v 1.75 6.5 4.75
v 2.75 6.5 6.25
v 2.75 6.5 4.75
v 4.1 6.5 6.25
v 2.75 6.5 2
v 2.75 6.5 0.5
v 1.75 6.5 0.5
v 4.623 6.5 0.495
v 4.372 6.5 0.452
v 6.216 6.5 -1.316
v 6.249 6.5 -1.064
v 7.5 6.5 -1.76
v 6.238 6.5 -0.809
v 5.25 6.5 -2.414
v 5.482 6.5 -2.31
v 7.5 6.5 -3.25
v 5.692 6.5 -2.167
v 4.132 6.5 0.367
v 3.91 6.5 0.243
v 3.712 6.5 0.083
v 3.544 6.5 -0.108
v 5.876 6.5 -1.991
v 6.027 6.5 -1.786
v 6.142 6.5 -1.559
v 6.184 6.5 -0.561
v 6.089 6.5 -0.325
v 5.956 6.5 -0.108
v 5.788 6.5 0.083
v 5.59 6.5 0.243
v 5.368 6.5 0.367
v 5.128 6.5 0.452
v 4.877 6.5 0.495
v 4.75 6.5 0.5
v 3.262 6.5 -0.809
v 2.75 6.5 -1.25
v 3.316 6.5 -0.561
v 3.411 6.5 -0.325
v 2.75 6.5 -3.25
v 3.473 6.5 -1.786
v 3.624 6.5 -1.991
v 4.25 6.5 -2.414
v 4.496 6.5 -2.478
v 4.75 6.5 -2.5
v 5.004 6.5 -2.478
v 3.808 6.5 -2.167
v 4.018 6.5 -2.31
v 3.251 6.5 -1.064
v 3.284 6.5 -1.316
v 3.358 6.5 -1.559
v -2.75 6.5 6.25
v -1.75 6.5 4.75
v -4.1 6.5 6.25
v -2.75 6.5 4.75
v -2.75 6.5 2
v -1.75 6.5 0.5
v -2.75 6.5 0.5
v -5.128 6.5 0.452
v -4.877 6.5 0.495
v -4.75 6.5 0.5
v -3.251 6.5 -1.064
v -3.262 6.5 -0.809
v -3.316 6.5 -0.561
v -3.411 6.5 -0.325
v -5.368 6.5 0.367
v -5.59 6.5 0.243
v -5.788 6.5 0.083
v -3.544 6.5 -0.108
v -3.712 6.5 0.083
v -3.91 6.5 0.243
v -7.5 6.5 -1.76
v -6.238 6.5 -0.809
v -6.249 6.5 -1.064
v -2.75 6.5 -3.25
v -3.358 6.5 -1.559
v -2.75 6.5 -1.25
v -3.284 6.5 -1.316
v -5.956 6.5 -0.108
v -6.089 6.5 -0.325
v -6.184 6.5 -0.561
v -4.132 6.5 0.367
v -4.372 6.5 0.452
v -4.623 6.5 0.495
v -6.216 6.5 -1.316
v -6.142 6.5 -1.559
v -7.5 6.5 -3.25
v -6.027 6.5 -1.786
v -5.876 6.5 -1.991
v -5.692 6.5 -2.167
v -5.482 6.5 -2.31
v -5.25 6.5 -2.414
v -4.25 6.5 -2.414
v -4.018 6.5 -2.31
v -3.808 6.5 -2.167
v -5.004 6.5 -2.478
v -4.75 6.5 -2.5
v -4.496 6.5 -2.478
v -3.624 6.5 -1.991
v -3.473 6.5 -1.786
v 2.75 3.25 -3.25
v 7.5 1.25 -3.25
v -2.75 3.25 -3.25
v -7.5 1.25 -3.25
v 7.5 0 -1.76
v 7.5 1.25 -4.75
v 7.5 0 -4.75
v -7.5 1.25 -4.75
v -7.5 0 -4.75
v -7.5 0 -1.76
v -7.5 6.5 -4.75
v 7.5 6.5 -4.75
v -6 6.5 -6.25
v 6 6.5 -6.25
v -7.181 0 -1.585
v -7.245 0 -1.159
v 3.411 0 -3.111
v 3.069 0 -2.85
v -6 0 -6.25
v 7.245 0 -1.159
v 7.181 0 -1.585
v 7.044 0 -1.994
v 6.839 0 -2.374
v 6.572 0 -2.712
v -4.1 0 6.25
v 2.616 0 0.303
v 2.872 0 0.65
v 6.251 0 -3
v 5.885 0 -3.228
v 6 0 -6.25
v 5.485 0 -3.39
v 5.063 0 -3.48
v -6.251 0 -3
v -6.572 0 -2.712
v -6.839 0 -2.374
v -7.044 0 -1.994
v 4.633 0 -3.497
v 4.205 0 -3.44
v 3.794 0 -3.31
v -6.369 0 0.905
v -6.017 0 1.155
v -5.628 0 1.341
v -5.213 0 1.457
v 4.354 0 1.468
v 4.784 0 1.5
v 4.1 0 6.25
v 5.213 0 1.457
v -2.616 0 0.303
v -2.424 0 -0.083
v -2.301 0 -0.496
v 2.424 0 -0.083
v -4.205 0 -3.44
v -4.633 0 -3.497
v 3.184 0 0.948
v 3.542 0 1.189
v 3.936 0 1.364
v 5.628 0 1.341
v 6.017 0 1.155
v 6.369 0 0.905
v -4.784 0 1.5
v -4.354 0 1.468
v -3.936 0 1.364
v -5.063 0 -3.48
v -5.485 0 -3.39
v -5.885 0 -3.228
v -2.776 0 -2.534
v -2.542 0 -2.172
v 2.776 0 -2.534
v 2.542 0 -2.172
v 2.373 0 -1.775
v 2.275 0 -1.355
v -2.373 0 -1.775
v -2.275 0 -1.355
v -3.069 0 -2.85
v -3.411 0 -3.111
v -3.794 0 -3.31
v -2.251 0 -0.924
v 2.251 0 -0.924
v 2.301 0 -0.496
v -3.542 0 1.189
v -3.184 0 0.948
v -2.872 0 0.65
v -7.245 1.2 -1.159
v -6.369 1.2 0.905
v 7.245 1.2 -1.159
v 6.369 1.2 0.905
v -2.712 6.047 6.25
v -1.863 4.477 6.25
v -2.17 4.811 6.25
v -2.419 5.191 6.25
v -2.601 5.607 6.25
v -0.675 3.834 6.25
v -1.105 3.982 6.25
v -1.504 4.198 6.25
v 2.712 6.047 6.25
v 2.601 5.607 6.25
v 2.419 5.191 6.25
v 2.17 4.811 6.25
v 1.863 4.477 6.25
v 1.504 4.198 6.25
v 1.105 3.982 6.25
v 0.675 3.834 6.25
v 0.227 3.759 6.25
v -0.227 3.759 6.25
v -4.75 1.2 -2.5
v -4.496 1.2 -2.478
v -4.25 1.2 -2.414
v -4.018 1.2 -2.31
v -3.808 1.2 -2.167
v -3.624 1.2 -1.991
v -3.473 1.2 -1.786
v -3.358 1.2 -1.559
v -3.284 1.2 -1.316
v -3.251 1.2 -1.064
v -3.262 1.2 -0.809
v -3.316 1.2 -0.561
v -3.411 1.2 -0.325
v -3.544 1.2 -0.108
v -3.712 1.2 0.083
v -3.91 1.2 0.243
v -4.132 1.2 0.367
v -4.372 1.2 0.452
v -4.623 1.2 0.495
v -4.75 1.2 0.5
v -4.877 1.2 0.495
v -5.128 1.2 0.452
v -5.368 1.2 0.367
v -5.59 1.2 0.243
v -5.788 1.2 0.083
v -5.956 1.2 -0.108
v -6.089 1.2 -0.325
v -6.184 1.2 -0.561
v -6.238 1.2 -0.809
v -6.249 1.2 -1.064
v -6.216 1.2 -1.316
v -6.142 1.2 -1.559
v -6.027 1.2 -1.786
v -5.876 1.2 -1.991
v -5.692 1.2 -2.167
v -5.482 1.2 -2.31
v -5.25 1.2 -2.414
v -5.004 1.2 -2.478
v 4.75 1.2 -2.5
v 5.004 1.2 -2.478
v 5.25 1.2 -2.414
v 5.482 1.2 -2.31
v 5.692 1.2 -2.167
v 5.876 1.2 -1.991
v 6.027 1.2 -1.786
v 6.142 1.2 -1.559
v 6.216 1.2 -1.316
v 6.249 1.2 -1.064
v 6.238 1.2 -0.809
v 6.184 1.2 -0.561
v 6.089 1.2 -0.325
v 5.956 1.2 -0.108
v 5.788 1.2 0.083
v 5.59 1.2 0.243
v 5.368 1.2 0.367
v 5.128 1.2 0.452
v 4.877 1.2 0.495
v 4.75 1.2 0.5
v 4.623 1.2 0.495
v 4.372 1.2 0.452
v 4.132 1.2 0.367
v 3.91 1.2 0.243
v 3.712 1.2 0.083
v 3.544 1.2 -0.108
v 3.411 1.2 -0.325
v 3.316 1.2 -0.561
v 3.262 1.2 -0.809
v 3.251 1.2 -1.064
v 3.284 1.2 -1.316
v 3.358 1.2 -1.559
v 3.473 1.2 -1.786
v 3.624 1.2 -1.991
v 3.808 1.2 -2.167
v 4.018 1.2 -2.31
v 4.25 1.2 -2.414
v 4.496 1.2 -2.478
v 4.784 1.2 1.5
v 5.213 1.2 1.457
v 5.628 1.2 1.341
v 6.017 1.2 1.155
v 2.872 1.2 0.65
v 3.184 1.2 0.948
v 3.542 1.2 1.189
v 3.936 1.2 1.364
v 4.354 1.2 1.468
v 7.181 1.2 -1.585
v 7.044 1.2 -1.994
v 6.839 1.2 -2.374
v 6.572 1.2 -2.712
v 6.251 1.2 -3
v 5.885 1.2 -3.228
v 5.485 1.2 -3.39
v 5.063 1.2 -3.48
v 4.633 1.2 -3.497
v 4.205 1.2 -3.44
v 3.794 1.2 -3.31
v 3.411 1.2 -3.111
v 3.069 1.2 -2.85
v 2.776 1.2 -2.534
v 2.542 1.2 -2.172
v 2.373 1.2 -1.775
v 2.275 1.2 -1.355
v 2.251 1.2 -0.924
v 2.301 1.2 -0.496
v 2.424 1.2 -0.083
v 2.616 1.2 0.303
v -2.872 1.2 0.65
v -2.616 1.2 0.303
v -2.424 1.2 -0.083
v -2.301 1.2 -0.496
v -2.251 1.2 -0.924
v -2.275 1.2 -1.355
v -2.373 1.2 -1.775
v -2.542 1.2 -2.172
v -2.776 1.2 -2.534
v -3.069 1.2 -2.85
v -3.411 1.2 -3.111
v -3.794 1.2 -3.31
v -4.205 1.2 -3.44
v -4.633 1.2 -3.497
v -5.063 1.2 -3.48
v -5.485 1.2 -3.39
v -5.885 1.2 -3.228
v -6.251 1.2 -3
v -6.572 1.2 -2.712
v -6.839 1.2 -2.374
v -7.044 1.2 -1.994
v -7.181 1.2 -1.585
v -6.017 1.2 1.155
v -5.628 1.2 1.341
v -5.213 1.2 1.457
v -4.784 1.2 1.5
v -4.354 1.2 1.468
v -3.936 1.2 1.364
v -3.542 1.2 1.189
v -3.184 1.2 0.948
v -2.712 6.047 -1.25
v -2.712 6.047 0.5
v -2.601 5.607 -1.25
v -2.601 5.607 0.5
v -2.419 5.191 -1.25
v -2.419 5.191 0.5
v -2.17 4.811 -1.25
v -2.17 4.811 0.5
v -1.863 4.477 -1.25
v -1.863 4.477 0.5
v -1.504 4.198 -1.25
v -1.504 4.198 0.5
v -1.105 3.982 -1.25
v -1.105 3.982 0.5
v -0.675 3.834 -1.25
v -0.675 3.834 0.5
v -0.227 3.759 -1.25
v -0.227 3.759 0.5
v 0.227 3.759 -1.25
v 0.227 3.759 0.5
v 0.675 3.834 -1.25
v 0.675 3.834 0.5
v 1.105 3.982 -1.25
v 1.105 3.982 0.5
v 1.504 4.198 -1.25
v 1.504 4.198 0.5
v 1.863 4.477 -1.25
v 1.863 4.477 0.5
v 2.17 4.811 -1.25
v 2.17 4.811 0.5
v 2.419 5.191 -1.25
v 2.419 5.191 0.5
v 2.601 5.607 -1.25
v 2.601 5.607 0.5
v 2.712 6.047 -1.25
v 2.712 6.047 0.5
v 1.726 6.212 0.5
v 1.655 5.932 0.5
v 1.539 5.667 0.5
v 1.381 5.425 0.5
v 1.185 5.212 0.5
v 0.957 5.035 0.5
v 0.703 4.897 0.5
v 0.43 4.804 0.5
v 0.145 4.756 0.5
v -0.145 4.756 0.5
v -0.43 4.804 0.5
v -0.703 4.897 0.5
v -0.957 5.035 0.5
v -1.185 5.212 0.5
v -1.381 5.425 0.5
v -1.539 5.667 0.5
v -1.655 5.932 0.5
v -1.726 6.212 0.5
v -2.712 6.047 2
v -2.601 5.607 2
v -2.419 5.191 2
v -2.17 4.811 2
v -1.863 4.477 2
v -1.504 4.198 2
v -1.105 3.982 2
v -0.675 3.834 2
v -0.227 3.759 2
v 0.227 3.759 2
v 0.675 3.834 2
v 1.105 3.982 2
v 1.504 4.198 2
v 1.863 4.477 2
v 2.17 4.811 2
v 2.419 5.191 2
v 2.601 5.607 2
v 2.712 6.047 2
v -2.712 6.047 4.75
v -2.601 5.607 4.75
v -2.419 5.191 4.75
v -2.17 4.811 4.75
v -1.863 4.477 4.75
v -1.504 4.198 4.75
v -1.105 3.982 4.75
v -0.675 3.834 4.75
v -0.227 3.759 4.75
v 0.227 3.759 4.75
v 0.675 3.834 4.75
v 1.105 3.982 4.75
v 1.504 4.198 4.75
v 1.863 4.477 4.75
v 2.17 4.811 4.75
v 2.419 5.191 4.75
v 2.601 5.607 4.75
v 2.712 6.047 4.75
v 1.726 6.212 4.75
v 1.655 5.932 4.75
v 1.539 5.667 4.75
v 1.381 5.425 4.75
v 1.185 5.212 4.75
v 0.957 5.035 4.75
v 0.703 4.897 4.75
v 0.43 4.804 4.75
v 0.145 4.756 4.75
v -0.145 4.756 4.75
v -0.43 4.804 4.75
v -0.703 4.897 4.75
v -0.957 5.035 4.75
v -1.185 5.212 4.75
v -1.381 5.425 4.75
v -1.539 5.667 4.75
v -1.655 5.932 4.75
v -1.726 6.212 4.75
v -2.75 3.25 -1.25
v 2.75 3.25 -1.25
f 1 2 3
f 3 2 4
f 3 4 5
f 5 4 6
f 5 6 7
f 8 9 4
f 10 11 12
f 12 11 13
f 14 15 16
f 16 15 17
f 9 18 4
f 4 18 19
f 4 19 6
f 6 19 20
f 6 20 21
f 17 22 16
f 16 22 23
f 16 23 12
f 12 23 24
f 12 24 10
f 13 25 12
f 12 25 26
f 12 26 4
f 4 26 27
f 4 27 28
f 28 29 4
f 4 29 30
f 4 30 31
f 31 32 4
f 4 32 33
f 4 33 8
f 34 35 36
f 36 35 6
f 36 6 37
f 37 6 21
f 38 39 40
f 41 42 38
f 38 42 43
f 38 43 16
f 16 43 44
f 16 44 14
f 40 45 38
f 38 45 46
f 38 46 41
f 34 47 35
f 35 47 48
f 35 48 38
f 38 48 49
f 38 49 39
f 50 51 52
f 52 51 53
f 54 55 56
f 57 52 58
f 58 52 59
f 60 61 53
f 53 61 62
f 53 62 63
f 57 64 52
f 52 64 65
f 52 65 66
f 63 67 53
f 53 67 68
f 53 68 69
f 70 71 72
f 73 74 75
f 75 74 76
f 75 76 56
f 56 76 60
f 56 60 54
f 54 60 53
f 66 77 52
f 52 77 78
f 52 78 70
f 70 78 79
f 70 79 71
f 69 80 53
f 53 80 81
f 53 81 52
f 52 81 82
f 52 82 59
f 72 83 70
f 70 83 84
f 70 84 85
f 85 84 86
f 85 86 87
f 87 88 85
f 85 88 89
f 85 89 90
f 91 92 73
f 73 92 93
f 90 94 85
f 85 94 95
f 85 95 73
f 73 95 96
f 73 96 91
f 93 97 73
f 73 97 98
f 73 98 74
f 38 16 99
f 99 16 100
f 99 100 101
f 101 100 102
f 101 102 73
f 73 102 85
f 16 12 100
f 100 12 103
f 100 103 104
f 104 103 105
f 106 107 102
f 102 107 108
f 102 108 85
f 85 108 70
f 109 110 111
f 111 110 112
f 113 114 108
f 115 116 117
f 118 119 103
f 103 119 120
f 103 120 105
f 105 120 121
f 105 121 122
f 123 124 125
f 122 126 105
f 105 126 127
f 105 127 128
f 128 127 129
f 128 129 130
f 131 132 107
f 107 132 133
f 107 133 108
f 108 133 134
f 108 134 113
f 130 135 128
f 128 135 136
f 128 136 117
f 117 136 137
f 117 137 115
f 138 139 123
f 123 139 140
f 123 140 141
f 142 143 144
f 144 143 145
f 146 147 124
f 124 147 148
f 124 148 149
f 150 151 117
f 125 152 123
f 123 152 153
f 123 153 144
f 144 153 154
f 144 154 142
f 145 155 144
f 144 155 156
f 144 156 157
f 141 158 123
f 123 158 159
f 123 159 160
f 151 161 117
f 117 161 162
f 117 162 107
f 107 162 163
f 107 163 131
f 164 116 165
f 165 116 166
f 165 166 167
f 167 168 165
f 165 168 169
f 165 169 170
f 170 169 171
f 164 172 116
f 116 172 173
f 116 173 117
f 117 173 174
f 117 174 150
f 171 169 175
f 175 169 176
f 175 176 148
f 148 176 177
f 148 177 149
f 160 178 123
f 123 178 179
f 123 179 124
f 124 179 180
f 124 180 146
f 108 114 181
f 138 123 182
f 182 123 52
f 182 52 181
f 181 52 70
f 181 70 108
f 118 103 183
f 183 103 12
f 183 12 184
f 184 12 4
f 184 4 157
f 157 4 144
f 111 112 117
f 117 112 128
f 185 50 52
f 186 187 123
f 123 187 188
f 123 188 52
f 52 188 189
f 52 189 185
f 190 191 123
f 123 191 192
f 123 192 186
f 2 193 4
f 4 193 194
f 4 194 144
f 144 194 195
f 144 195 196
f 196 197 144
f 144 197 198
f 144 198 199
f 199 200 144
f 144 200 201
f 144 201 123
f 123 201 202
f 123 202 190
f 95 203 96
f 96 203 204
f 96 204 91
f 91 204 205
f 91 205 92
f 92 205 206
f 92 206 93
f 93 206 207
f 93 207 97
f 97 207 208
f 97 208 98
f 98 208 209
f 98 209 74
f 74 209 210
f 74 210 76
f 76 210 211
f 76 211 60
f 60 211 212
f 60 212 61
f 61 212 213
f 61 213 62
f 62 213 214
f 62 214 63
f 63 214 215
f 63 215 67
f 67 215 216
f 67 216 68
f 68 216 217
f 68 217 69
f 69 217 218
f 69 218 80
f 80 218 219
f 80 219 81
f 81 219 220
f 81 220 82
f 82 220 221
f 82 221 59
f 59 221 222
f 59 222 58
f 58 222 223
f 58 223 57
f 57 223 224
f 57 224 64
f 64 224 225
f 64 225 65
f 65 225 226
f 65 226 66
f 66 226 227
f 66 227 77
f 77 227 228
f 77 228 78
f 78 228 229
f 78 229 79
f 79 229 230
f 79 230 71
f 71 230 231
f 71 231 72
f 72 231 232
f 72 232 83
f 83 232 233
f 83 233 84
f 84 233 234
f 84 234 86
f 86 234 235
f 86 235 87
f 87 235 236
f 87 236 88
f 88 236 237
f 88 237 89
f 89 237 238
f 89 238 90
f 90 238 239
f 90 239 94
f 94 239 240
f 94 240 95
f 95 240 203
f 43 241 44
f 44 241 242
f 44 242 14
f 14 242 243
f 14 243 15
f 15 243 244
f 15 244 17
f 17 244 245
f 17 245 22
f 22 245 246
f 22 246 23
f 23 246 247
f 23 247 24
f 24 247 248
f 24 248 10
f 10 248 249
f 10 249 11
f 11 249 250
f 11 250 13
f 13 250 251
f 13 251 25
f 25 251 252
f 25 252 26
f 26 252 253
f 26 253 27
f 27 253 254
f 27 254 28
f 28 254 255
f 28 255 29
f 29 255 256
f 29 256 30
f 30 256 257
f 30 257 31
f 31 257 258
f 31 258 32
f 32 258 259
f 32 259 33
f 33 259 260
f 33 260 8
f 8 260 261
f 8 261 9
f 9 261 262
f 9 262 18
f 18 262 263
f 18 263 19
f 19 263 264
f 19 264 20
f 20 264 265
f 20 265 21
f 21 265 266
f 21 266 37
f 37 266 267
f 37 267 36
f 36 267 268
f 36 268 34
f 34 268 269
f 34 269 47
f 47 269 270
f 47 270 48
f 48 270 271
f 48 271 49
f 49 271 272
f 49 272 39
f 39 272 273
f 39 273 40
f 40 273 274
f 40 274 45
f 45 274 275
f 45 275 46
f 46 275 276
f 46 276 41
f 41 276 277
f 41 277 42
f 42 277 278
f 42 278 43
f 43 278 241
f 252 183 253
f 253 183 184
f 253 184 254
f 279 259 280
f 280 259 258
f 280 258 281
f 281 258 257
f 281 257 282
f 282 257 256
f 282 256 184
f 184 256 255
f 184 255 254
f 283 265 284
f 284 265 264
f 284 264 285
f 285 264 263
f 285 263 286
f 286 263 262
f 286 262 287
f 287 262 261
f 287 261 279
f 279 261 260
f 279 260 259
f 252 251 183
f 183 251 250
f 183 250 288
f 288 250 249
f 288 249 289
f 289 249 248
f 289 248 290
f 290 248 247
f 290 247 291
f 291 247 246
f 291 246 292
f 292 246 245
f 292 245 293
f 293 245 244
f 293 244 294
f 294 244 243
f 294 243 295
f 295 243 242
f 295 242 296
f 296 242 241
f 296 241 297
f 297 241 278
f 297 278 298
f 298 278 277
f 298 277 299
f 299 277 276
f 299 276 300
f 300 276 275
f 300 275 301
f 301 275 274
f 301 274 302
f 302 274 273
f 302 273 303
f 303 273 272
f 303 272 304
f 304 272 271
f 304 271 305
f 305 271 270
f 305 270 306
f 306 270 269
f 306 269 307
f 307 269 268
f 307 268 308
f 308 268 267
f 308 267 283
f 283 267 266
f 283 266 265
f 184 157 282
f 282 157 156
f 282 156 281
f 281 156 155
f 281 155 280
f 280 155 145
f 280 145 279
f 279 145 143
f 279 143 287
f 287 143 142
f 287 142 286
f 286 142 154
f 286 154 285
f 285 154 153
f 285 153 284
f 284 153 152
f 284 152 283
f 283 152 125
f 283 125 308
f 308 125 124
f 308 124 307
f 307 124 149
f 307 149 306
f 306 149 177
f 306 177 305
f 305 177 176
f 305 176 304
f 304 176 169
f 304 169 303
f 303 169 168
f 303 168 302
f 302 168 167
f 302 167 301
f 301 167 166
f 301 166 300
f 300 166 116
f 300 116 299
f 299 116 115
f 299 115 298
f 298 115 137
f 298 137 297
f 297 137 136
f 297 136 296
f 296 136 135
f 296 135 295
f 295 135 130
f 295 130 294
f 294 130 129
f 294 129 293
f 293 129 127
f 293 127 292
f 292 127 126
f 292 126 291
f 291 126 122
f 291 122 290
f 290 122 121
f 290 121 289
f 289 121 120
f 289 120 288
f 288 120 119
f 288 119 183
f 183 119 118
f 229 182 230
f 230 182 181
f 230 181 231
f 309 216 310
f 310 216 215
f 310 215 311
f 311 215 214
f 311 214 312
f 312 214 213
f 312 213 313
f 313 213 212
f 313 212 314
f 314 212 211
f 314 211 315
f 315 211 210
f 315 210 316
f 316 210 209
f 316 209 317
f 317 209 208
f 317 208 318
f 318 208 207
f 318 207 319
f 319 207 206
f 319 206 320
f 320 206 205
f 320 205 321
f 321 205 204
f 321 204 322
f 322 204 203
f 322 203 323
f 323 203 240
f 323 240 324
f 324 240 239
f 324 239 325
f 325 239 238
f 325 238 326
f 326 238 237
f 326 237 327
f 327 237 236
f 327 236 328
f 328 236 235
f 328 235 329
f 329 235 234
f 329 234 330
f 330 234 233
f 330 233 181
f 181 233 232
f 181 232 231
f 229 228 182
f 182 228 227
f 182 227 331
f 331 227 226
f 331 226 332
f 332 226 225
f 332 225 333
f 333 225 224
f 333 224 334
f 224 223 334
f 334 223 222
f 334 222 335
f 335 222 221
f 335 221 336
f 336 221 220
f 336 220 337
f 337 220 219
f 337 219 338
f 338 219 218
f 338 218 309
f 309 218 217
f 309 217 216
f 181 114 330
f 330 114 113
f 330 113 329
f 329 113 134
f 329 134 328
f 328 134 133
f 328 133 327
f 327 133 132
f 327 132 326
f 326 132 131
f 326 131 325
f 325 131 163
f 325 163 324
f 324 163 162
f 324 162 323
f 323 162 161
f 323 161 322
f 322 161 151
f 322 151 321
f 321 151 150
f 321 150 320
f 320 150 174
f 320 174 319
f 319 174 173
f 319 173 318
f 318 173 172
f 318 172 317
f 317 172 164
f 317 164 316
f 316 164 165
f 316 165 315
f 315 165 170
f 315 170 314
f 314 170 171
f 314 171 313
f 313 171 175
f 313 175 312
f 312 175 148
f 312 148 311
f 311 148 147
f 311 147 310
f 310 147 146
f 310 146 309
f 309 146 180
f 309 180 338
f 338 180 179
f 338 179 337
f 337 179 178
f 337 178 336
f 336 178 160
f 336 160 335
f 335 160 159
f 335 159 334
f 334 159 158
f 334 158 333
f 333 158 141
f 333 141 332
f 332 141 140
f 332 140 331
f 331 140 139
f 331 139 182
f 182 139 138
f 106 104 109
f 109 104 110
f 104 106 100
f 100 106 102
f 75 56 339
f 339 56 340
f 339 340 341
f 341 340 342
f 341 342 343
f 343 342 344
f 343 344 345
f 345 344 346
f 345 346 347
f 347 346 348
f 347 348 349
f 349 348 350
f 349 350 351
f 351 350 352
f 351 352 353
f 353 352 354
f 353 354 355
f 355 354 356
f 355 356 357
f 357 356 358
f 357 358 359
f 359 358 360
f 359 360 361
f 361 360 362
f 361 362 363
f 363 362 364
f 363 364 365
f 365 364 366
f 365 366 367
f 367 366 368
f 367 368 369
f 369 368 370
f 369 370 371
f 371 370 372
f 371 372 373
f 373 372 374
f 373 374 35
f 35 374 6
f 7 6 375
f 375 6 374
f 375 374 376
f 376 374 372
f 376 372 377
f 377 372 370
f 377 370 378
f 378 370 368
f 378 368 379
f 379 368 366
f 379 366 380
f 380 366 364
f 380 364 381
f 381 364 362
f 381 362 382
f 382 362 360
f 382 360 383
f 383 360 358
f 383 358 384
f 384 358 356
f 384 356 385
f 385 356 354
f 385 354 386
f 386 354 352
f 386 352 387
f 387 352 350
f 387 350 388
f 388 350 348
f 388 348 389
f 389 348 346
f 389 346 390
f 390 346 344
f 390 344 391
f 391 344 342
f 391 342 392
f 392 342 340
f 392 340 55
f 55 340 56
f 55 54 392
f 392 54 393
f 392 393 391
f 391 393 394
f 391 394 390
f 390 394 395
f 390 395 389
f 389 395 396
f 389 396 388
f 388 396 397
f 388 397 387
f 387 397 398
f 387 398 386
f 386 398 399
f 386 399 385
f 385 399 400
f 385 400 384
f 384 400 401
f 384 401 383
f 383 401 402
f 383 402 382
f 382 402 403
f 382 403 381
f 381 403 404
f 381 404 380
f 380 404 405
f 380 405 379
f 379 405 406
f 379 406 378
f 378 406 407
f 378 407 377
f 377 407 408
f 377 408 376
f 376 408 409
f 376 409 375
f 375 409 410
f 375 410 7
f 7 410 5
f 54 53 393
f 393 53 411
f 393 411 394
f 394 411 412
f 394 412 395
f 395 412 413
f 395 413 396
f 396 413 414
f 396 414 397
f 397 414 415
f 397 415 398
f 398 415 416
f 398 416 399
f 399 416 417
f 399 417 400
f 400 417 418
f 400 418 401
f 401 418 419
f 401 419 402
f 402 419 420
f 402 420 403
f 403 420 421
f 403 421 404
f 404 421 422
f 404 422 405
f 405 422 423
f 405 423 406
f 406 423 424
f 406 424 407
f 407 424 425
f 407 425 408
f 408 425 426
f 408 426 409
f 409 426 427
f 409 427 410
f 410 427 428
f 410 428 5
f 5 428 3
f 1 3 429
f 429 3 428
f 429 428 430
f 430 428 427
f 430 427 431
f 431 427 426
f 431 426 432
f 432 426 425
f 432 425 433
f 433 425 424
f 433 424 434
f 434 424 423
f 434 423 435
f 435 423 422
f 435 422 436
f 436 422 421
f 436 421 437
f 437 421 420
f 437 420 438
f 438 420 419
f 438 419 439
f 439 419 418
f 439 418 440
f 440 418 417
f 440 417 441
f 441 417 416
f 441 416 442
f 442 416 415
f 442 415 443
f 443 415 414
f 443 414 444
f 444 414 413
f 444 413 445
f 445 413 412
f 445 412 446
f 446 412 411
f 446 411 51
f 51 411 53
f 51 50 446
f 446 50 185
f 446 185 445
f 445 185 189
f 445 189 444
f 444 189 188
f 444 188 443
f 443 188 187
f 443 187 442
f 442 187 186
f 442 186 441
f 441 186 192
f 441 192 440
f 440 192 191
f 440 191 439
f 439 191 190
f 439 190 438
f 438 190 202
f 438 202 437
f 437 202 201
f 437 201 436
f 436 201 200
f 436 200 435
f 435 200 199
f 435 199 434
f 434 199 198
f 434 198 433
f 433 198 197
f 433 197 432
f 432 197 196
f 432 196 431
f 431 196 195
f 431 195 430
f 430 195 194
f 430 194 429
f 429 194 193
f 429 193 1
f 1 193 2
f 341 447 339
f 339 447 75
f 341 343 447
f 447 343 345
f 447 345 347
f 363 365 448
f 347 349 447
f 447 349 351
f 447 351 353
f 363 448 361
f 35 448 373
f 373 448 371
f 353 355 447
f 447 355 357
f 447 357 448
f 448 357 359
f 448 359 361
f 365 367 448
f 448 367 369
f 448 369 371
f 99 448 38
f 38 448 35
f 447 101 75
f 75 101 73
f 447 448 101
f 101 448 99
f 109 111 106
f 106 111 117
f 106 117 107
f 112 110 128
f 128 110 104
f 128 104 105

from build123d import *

# Parameters (mm, degrees)
SKETCH1_W           = 15
SKETCH1_H           = 12.5
BOSS_EXTRUDE1_DEPTH = 6.5
SKETCH2_R           = 1.5
CUT_EXTRUDE1_DEPTH  = 12.728704106
CHAMFER1_SIZE       = 3.4
CHAMFER1_SIZE2      = 8.009898044
SKETCH2_3_R         = 2.5
SKETCH2_3_R_2       = 1.5
CUT_EXTRUDE5_DEPTH  = 1.2
CUT_EXTRUDE4_DEPTH  = 5.25
SKETCH3_W           = 5.5
SKETCH3_H           = 2
CUT_EXTRUDE3_DEPTH  = 3.25
CHAMFER2_SIZE       = 1.5


with BuildPart() as part:
    # Sketch1 → Boss-Extrude1 (new body)
    with BuildSketch(Plane(origin=(0, 0, 0), x_dir=(1, 0, 0), z_dir=(0, 1, 0))):
        Rectangle(SKETCH1_W, SKETCH1_H)
    extrude(amount=BOSS_EXTRUDE1_DEPTH)

    # Sketch2 → Cut-Extrude1 (cut, through all)
    with BuildSketch(Plane(origin=(0, 0, 0), x_dir=(1, 0, 0), z_dir=(0, 1, 0))):
        with Locations(Location((4.75, 1, 0), (0, 0, 90))):
            Circle(SKETCH2_R)
        with Locations(Location((-4.75, 1, 0), (0, 0, 90))):
            Circle(SKETCH2_R)
    extrude(amount=CUT_EXTRUDE1_DEPTH, mode=Mode.SUBTRACT)

    # Chamfer1
    chamfer1_edges = [part.edges().sort_by_distance(p)[0] for p in [
        (7.5, 3.25, 6.25),
        (-7.5, 3.25, 6.25),
    ]]
    chamfer1_side = [part.faces().sort_by_distance(p)[0] for p in [
        (0, 3.25, 6.25),
    ]]
    chamfer(chamfer1_edges, length=CHAMFER1_SIZE, length2=CHAMFER1_SIZE2, reference=chamfer1_side[0])

    # Sketch2<3> → Cut-Extrude5 (cut)
    # profile 1 of 2: a face of its own
    with BuildSketch(Plane(origin=(0, 0, 0), x_dir=(1, 0, 0), z_dir=(0, 1, 0))):
        with Locations((4.75, 1)):
            Circle(SKETCH2_3_R)
        with Locations(Location((4.75, 1, 0), (0, 0, 90))):
            Circle(SKETCH2_3_R_2, mode=Mode.SUBTRACT)
    # profile 2 of 2: a face of its own
    with BuildSketch(Plane(origin=(0, 0, 0), x_dir=(1, 0, 0), z_dir=(0, 1, 0))):
        with Locations((-4.75, 1)):
            Circle(SKETCH2_3_R)
        with Locations(Location((-4.75, 1, 0), (0, 0, 90))):
            Circle(SKETCH2_3_R_2, mode=Mode.SUBTRACT)
    extrude(amount=CUT_EXTRUDE5_DEPTH, mode=Mode.SUBTRACT)

    # Sketch3<3> → Cut-Extrude4 (cut)
    with BuildSketch(Plane(origin=(0, 6.5, 0), x_dir=(1, 0, 0), z_dir=(0, 1, 0))):
        Polygon((7.5, 4.75), (-7.5, 4.75), (-7.5, 3.25), (-2.75, 3.25), (2.75, 3.25), (7.5, 3.25), align=None)
    extrude(amount=-CUT_EXTRUDE4_DEPTH, mode=Mode.SUBTRACT)

    # Sketch4 → Cut-Revolve1 (revolve, cut)
    with BuildSketch(Plane(origin=(0, 6.5, 0), x_dir=(1, 0, 0), z_dir=(0, 1, 0))):
        Polygon((2.75, 1.25), (2.75, -0.5), (1.75, -0.5), (2.75, -2), (2.75, -4.75), (1.75, -4.75), (2.75, -6.25), (0, -6.25), (0, 1.25), align=None)
    revolve(axis=Axis((0, 6.5, 6.25), (0, 0, -1)), mode=Mode.SUBTRACT)

    # Sketch3 → Cut-Extrude3 (cut)
    with BuildSketch(Plane(origin=(0, 6.5, 0), x_dir=(1, 0, 0), z_dir=(0, 1, 0))):
        with Locations((0, 2.25)):
            Rectangle(SKETCH3_W, SKETCH3_H)
    extrude(amount=-CUT_EXTRUDE3_DEPTH, mode=Mode.SUBTRACT)

    # Chamfer2
    chamfer2_edges = [part.edges().sort_by_distance(p)[0] for p in [
        (-7.5, 3.25, -6.25),
        (7.5, 3.25, -6.25),
    ]]
    chamfer(chamfer2_edges, length=CHAMFER2_SIZE - 0.0001)  # a hair under: the kernel refuses the full size


solid = part.part
